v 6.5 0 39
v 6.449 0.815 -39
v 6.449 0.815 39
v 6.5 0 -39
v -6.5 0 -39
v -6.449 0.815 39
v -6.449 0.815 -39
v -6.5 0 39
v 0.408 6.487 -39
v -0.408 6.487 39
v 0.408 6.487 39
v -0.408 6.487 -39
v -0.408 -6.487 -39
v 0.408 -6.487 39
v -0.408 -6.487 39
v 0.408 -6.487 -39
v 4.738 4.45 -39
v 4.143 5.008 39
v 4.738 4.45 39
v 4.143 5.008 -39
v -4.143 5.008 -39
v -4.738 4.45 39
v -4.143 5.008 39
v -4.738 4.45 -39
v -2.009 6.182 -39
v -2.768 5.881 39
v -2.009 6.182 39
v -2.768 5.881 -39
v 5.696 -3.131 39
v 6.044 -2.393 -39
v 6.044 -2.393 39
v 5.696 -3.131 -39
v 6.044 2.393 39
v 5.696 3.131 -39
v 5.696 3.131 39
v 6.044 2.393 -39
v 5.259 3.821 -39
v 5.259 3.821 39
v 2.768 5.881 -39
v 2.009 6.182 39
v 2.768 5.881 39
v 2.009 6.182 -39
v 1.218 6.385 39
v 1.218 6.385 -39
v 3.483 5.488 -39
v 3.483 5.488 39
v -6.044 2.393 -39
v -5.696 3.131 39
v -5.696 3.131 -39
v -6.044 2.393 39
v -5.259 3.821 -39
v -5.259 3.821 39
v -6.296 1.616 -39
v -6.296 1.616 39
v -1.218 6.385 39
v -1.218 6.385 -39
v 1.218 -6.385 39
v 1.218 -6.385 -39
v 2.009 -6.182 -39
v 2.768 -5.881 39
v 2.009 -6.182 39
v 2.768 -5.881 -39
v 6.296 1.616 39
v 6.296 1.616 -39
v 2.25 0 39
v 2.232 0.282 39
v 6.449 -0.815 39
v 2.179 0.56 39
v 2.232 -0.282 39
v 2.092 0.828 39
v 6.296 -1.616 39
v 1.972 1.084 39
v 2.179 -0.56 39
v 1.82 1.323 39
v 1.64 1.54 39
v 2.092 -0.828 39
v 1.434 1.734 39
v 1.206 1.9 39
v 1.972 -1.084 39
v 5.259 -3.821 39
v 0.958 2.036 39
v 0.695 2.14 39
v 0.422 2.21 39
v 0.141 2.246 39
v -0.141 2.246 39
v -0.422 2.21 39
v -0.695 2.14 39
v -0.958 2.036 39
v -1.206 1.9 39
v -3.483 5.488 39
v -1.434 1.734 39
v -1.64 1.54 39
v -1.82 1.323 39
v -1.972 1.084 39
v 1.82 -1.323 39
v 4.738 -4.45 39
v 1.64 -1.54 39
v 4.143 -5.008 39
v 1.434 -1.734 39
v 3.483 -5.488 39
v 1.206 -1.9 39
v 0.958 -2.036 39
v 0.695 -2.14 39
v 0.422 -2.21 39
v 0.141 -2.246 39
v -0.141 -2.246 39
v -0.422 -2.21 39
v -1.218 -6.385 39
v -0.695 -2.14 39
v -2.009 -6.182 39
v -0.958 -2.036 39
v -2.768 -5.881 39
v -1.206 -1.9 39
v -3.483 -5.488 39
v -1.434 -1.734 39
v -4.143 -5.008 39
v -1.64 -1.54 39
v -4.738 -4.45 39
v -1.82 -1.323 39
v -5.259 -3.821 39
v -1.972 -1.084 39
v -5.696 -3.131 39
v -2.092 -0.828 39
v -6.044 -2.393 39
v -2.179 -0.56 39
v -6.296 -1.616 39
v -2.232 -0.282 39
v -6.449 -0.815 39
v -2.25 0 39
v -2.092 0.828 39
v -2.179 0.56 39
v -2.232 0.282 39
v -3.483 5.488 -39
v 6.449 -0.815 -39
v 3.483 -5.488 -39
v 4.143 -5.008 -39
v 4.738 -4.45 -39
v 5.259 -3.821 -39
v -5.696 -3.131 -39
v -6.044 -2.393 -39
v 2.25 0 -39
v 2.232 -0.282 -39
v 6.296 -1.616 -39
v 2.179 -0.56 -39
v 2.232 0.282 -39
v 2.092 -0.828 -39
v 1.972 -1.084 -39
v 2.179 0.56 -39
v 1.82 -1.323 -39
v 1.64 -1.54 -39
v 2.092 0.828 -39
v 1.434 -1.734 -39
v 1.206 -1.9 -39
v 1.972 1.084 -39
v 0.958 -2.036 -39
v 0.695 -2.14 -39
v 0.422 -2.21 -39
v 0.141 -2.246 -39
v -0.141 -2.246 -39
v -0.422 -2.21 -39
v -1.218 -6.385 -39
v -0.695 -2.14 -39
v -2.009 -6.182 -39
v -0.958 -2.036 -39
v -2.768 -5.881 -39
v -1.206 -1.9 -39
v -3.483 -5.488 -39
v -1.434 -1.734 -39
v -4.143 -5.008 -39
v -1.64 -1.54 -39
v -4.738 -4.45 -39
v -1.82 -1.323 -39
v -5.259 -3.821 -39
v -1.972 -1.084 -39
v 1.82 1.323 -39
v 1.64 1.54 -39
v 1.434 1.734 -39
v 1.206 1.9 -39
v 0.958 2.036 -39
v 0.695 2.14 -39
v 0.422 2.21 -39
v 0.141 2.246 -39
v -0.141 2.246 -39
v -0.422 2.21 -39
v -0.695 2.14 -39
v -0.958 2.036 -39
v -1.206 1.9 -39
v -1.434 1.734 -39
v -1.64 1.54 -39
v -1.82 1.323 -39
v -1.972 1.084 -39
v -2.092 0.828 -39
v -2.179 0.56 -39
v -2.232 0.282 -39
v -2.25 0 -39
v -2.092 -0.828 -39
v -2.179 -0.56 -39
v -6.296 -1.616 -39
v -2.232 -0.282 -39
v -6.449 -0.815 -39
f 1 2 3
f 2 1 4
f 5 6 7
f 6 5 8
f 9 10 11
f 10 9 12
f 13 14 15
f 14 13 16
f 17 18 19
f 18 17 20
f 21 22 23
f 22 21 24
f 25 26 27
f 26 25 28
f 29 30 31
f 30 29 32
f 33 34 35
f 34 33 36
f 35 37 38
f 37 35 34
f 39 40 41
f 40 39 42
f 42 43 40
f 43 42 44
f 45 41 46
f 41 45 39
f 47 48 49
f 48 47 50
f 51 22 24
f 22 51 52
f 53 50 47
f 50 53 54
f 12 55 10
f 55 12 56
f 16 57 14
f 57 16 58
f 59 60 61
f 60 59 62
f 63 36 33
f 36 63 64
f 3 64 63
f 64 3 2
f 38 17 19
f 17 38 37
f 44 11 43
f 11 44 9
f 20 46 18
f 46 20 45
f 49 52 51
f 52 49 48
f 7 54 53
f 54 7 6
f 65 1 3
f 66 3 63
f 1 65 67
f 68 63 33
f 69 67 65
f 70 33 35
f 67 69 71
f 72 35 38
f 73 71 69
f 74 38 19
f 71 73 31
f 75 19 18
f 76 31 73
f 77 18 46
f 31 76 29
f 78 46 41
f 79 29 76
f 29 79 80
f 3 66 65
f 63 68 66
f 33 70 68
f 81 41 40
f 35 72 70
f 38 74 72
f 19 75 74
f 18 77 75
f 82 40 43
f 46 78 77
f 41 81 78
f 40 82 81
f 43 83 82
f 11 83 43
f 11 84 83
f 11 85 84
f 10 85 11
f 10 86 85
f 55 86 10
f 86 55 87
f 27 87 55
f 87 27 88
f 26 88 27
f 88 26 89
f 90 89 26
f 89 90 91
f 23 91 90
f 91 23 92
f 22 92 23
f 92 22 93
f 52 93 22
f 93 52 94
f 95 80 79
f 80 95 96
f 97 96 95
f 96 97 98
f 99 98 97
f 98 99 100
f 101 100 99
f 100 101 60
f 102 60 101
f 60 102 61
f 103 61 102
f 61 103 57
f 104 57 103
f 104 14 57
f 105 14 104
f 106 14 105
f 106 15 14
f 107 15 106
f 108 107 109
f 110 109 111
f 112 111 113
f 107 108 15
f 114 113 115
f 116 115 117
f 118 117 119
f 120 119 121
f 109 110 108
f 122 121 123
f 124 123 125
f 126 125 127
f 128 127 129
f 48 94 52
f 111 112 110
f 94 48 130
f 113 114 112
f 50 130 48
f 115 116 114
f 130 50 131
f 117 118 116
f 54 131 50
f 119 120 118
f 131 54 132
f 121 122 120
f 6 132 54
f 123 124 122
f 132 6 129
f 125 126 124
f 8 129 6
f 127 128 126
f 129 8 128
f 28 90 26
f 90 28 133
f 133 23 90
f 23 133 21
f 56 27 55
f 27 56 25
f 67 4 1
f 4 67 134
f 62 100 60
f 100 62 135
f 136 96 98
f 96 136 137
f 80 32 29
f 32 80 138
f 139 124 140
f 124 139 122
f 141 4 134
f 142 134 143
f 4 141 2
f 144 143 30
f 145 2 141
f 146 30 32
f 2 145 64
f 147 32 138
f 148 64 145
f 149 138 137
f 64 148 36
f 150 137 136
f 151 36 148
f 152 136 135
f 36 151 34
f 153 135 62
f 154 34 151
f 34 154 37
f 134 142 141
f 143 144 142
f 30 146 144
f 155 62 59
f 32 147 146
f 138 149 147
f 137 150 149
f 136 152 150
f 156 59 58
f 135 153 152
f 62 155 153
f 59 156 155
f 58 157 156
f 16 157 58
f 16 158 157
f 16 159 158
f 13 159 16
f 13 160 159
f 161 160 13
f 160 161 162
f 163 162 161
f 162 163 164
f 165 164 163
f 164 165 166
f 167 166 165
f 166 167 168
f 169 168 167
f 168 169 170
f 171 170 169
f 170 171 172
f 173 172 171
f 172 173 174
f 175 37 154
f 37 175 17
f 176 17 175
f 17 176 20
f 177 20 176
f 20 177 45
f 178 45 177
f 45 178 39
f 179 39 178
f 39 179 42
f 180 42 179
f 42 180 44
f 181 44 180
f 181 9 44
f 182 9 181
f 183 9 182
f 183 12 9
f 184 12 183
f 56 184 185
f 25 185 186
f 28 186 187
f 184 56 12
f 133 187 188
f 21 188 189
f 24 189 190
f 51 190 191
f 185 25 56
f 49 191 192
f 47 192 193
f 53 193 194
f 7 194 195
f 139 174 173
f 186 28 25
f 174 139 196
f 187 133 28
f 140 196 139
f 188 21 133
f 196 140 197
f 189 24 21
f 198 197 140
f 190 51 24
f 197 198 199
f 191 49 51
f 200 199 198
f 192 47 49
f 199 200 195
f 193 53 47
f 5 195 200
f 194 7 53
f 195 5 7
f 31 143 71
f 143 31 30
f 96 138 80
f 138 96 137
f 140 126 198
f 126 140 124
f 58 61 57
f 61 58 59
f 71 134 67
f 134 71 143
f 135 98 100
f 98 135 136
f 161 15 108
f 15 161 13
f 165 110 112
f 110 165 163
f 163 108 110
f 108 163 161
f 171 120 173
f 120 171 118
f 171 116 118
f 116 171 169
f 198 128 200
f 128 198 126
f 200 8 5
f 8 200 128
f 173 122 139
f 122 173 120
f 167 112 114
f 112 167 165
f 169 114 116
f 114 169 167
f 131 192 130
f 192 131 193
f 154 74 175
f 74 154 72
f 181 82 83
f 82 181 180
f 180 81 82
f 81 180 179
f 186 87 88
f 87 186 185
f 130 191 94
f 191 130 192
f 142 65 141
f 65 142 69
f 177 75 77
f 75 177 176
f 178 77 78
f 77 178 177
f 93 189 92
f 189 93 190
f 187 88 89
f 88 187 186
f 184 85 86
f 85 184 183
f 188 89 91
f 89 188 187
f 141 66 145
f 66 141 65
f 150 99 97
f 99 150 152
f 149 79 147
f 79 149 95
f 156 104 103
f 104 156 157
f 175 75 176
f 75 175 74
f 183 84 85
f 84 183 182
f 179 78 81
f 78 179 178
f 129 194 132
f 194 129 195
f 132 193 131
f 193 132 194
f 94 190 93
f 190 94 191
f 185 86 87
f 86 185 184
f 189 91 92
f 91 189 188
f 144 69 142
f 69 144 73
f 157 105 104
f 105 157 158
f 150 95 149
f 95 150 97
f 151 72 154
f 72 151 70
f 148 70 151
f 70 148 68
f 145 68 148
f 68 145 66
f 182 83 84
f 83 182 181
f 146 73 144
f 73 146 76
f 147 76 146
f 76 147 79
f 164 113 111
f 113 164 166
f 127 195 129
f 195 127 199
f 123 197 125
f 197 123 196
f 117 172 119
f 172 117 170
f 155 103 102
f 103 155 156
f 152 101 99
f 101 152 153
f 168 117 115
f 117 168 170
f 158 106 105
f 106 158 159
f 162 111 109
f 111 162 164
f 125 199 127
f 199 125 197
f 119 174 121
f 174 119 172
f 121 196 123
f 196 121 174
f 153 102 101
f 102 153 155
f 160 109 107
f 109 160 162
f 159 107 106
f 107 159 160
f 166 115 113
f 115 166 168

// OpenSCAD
$fn = 50;


difference() {
	union() {
		translate(v = [0, 0, -39.0000000000]) {
			cylinder(h = 78, r = 6.5000000000);
		}
	}
	union() {
		translate(v = [0, 0, -100.0000000000]) {
			cylinder(h = 200, r = 2.2500000000);
		}
	}
}
